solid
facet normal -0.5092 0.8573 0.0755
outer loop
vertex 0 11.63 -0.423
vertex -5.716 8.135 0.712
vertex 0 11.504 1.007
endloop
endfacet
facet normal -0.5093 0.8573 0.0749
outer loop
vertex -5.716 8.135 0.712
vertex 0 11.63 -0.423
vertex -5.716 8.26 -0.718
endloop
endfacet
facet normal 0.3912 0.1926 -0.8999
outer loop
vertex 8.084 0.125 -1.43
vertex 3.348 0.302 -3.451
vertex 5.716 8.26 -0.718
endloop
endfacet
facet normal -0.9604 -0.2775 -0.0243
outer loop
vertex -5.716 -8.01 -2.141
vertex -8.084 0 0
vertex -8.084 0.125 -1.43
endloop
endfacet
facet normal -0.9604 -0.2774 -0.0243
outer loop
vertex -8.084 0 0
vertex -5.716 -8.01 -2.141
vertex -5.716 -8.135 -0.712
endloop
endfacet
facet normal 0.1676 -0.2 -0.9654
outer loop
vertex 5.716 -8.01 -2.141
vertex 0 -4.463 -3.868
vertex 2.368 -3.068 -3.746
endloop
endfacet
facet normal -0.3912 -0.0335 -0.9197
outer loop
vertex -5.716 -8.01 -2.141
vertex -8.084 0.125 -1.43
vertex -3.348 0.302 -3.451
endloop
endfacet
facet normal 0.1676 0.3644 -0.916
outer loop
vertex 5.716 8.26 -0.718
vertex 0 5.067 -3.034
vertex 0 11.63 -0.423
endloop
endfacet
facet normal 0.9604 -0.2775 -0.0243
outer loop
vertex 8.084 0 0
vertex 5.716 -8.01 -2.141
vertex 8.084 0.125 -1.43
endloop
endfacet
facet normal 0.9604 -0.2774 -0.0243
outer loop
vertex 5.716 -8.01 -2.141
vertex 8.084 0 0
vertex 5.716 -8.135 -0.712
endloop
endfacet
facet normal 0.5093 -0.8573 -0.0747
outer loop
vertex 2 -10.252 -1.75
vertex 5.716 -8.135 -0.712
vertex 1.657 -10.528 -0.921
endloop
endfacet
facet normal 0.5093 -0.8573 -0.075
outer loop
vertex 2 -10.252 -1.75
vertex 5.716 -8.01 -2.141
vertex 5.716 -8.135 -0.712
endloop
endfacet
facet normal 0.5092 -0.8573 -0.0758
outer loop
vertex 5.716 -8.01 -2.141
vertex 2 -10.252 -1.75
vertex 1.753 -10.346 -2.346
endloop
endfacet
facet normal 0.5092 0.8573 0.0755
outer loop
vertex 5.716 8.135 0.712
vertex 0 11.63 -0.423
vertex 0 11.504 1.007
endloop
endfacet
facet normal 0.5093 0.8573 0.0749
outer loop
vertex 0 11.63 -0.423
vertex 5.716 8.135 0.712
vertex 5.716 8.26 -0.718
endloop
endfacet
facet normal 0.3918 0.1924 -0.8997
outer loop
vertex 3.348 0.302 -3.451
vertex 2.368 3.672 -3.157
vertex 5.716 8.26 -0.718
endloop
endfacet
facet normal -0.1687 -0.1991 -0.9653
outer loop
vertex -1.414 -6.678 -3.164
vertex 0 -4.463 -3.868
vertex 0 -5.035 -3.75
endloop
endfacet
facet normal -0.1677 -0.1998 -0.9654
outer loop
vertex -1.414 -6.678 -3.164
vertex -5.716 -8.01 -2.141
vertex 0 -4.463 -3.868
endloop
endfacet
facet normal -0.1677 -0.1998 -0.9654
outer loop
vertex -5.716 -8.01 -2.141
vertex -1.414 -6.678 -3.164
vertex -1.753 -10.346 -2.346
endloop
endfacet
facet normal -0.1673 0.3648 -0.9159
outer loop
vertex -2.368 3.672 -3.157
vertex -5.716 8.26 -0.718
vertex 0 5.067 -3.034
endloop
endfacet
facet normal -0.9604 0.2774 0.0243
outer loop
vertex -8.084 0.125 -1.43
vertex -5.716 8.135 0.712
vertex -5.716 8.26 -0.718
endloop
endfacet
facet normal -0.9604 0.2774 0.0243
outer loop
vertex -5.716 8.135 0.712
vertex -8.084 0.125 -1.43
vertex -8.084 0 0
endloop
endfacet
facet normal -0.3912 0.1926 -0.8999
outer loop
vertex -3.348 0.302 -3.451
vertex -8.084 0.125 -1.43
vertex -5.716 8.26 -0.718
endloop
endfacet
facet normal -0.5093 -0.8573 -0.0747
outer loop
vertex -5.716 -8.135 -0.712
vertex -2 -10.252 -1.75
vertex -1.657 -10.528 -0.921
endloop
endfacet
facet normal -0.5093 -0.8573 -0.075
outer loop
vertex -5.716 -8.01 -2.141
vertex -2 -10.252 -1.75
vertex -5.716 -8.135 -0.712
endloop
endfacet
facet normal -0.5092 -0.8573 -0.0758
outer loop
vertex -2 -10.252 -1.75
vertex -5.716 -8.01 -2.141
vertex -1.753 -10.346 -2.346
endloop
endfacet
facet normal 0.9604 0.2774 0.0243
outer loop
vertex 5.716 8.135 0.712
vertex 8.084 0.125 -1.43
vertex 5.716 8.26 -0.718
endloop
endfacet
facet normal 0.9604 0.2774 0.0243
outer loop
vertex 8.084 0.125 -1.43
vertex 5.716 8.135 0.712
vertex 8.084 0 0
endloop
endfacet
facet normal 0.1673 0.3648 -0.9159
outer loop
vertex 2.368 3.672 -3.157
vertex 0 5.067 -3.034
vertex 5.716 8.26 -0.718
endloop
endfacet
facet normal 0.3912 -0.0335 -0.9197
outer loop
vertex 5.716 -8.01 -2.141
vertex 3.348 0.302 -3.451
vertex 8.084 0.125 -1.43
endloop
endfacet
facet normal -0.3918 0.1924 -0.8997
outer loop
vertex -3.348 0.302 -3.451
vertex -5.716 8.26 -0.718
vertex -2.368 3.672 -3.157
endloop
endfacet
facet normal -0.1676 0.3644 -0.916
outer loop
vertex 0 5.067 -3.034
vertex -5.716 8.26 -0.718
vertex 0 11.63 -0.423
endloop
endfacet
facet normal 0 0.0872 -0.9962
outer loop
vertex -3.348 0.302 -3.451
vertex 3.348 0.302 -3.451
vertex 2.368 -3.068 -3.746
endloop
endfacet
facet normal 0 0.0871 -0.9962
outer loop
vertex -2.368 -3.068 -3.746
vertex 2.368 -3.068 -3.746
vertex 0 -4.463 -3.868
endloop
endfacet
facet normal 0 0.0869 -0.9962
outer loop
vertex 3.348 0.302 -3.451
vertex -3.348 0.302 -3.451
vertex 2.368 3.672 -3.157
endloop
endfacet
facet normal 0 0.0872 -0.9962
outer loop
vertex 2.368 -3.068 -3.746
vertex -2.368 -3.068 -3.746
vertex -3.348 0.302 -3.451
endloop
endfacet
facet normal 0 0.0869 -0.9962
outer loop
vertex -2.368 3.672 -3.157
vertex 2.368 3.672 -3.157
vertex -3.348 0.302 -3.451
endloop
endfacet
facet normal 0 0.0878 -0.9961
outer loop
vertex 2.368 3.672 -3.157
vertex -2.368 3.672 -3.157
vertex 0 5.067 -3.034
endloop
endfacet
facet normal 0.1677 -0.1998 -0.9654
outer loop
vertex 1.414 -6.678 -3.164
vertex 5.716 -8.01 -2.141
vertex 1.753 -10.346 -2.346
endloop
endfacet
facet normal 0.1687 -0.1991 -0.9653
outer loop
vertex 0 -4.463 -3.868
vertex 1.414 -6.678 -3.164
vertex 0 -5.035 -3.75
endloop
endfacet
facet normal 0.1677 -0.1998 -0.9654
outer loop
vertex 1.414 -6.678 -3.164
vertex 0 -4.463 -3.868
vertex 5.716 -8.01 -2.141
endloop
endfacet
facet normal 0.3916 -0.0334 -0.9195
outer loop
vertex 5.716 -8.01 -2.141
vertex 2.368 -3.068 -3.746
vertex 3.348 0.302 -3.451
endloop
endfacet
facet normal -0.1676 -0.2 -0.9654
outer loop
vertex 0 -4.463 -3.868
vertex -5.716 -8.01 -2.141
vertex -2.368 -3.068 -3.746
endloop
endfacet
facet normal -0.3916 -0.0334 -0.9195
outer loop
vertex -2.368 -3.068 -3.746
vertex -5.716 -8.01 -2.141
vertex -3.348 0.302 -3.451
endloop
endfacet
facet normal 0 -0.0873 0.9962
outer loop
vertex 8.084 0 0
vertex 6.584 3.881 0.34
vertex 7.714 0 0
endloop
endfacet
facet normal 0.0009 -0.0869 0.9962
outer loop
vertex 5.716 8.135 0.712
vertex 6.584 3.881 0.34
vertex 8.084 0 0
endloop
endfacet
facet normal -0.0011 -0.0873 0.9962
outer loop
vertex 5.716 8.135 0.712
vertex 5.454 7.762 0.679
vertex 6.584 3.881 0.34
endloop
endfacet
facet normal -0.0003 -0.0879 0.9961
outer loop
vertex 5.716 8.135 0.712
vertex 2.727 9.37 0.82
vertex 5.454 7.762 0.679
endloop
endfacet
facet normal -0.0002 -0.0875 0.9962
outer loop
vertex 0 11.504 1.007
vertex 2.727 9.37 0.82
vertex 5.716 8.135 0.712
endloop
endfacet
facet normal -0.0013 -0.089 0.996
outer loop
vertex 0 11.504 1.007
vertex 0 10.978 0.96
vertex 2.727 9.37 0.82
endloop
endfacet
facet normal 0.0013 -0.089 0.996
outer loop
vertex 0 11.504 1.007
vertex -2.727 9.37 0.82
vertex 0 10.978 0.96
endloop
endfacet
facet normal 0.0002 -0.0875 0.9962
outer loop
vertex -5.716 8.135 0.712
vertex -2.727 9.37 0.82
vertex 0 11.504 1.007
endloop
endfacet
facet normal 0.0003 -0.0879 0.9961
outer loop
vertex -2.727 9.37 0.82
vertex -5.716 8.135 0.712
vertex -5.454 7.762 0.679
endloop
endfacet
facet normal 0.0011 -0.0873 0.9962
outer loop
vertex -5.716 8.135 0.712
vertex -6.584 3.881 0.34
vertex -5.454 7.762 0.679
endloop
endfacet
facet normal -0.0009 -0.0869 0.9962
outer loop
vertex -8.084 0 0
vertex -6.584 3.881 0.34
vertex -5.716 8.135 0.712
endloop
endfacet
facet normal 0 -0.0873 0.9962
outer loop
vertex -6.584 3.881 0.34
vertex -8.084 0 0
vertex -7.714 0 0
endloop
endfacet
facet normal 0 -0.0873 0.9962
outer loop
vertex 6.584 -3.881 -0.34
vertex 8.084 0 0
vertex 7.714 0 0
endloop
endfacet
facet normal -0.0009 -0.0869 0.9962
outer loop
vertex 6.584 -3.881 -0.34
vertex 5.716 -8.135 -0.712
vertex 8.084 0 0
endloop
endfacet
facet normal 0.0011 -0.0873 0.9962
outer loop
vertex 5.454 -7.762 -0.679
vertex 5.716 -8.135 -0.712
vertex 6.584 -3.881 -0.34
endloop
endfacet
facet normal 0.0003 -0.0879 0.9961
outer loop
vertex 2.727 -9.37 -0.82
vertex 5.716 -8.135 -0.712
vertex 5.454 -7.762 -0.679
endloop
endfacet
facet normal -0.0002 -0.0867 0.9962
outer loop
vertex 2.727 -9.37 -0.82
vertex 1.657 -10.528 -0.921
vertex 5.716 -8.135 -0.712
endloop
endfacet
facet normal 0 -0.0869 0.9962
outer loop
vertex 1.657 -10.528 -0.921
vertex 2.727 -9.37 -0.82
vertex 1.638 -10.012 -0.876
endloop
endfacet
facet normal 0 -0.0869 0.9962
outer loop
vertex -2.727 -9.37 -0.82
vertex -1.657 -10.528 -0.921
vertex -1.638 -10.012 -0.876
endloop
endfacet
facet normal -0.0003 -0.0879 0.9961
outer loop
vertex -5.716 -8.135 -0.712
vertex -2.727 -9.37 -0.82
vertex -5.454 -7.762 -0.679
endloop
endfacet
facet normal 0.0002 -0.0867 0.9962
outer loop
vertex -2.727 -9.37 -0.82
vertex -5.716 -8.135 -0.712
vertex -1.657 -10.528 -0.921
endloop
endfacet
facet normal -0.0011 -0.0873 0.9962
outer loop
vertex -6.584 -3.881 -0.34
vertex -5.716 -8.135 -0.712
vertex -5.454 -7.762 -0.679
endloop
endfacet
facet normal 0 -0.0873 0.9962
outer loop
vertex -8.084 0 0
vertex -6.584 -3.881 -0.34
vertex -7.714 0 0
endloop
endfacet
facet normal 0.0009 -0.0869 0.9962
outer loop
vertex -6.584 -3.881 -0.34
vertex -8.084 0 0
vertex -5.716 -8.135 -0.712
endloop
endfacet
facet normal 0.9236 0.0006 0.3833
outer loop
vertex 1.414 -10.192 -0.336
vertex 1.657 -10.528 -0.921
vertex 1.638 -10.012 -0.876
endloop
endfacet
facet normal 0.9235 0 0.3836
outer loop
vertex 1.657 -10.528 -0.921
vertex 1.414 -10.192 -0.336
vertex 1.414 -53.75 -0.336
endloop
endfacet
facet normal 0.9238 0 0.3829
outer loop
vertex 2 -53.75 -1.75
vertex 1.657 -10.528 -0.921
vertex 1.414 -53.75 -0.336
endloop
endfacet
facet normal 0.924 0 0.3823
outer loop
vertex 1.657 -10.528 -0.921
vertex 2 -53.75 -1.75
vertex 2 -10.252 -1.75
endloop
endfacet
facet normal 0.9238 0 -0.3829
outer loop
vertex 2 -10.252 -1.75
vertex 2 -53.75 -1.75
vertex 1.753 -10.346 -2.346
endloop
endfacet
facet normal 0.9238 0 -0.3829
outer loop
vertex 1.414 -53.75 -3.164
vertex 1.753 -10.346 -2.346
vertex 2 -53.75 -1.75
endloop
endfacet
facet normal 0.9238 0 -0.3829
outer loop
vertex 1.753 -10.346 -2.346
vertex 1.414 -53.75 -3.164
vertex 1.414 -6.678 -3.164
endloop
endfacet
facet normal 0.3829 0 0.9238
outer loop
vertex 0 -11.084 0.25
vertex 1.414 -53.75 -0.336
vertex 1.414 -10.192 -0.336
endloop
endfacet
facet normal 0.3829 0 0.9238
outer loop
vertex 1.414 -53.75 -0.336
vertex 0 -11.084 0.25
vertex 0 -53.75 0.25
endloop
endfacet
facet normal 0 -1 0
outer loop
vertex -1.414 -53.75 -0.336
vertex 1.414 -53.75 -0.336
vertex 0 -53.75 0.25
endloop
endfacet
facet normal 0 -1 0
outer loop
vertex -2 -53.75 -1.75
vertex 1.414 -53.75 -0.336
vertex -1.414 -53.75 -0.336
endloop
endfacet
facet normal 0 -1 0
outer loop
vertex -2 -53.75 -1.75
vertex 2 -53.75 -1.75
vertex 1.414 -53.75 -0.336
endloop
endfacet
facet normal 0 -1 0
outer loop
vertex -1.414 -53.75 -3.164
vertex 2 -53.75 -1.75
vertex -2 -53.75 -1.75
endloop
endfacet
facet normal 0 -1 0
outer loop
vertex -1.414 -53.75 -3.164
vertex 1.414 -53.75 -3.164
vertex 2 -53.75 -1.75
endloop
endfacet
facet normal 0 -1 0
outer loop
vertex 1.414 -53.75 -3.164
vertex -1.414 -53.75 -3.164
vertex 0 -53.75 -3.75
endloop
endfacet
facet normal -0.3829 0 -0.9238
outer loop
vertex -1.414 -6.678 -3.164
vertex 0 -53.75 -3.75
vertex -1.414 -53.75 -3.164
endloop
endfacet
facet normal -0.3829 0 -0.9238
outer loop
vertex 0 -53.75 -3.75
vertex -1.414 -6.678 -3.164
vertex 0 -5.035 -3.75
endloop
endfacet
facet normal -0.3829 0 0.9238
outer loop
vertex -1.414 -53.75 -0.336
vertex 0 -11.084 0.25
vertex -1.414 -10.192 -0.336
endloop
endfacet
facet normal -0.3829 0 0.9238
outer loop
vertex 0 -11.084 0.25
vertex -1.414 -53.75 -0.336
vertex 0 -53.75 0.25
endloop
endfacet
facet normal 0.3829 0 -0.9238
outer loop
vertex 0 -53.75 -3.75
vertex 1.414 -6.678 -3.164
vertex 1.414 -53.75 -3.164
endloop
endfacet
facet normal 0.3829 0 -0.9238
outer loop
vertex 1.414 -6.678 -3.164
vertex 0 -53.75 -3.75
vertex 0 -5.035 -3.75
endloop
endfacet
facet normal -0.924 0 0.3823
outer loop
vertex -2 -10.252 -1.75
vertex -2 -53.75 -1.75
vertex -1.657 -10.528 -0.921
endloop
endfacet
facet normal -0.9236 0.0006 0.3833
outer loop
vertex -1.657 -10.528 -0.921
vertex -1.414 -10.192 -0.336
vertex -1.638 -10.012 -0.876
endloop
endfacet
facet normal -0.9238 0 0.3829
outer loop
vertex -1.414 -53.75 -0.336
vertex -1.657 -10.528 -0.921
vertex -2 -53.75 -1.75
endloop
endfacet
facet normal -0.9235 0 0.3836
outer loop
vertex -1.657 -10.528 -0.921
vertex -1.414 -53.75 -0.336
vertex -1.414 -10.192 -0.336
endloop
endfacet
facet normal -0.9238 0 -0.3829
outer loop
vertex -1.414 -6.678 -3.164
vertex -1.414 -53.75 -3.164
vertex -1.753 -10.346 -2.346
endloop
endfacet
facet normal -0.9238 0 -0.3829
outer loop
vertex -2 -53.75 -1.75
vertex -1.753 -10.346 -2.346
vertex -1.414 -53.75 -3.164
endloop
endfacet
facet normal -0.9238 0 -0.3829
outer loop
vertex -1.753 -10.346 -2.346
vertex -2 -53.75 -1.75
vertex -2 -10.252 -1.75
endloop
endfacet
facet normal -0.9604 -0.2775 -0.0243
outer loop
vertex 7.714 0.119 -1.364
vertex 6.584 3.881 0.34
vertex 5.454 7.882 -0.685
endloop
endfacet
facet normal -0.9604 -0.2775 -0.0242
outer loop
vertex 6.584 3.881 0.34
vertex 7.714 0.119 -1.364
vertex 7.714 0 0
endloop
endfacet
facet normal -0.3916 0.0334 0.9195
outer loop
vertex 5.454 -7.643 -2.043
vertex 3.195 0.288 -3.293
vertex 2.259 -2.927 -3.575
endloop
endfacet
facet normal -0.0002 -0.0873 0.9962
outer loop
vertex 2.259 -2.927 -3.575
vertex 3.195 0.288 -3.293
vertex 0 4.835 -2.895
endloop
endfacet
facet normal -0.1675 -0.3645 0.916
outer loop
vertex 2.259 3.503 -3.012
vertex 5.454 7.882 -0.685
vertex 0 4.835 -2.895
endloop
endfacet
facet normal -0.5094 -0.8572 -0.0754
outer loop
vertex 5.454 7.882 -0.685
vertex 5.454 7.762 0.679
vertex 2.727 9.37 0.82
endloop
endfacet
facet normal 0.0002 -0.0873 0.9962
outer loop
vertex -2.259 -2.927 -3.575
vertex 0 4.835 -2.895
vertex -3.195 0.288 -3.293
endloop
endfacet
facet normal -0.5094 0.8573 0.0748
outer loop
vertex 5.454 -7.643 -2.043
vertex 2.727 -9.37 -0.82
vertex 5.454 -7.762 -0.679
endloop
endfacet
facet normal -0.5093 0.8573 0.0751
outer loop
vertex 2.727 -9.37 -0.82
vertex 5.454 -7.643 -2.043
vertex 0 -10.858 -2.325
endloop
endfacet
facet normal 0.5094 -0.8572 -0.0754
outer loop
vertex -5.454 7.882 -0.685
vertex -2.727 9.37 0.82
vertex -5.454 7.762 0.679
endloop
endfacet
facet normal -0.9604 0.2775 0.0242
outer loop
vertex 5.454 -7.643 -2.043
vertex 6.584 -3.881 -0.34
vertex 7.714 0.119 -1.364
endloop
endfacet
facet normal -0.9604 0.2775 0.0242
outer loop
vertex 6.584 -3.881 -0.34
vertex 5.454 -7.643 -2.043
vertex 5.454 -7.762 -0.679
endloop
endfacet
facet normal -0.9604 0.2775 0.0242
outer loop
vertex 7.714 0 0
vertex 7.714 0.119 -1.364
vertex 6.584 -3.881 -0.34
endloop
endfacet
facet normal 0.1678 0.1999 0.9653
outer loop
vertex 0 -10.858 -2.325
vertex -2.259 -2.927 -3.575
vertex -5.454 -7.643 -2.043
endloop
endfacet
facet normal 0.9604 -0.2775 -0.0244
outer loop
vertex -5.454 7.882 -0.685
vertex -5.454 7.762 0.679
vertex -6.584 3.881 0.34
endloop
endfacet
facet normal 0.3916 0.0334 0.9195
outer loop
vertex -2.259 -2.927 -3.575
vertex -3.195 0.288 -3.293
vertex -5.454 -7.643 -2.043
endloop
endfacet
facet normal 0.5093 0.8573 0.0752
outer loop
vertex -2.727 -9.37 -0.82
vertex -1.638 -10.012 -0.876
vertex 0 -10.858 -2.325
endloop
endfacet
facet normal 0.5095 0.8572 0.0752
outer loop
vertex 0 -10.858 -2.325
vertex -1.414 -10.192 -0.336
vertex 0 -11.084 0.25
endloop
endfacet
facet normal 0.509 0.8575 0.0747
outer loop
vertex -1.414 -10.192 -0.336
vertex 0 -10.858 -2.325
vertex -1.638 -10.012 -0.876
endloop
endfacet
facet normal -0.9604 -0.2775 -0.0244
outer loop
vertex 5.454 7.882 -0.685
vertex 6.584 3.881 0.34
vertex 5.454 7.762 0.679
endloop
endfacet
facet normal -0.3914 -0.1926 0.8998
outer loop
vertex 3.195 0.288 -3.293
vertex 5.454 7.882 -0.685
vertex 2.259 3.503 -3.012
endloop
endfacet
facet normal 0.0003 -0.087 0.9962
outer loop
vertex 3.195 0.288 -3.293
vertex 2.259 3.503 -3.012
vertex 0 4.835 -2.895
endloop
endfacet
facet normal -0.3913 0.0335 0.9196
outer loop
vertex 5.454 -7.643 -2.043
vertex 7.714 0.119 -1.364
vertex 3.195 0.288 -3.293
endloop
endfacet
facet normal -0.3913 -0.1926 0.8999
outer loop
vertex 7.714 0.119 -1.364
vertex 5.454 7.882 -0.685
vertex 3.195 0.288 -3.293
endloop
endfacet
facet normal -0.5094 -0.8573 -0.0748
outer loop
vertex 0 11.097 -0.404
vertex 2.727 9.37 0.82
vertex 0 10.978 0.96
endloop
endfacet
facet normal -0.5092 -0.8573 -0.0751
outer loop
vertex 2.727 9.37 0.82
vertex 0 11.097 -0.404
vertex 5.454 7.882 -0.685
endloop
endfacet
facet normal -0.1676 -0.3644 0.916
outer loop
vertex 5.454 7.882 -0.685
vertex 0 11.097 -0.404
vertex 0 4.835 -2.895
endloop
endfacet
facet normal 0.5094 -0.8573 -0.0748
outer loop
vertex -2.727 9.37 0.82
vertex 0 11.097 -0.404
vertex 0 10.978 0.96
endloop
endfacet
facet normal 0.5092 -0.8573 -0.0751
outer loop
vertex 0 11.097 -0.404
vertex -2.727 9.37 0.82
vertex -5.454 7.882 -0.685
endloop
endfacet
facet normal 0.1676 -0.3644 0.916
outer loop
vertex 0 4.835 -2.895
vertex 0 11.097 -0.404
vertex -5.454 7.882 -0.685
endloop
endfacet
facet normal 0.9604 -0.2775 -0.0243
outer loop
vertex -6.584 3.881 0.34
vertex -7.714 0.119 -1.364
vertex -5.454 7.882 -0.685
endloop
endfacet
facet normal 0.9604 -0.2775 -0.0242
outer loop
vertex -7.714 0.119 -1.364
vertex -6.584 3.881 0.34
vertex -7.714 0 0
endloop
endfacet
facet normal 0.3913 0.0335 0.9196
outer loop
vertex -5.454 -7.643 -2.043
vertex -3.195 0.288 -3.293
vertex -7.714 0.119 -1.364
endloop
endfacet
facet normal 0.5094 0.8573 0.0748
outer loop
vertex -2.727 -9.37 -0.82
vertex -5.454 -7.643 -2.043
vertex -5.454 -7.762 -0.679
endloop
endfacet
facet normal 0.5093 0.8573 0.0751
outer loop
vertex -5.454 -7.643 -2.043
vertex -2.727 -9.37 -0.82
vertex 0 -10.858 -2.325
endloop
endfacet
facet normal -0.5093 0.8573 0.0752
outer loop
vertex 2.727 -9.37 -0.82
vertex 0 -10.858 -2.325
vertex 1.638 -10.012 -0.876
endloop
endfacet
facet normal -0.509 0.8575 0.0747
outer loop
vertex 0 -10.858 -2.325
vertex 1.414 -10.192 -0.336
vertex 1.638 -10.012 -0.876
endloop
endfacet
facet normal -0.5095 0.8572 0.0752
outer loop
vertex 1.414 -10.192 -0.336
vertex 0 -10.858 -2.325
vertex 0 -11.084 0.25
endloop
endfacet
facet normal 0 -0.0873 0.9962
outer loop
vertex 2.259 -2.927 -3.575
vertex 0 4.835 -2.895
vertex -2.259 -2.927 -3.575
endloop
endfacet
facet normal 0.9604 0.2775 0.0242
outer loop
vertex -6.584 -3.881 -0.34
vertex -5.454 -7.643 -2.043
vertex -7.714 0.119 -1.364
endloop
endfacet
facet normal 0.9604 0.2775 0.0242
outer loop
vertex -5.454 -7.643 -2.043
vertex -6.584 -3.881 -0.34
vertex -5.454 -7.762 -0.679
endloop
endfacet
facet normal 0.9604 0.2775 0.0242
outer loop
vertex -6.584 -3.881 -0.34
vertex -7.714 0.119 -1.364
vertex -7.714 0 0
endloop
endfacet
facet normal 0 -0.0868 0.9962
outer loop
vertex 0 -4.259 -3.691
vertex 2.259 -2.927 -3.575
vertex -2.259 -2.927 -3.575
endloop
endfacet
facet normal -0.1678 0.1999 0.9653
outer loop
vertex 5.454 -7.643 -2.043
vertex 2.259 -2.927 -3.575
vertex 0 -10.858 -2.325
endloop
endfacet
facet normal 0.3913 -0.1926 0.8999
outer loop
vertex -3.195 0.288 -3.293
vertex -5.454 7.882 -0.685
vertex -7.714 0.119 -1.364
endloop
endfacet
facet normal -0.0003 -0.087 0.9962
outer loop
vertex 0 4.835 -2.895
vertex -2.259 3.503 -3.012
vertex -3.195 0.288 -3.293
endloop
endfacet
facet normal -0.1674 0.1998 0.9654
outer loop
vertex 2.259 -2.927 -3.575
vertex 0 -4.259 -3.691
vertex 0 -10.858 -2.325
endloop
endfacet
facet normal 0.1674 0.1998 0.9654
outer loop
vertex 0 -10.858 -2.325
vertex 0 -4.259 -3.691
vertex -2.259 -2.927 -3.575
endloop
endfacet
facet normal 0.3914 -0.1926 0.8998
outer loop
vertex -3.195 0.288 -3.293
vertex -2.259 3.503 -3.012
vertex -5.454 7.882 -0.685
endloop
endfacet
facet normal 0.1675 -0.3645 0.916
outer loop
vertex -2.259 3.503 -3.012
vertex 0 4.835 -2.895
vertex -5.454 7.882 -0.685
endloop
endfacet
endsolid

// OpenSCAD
// vim:ts=4:sw=4:sts=4:et:ai
wall_width      = .6;
diamiter        = 25;
handle_diamiter = 4;
handle_sides    = 8;
resolution      = 8;

$fn=resolution;

module spool_bowl(){
    rotate([5,0,0]) scale([.7,1,.3]) difference() {
        sphere(d=diamiter);
        translate([-50,-50,0]) cube([100,100,100]);
    }
}

module spool_bowl_taken(){
    rotate([5,0,0]) scale([.7,1,.3]) difference() {
        sphere(d=diamiter);
    }
}

module handle(){
    diamiter = diamiter*.3;
    translate([0,-diamiter/2,(-diamiter/2)+handle_diamiter/2]) rotate([90,45,0]){
        cylinder(d=handle_diamiter, h=50, $fn=handle_sides);
    }
}

difference(){
    union(){
        spool_bowl();
        handle();
    }
    scale([diamiter/(diamiter+(wall_width*2)),diamiter/(diamiter+(wall_width*2)),diamiter/(diamiter+(wall_width*2))]) spool_bowl_taken();
}
